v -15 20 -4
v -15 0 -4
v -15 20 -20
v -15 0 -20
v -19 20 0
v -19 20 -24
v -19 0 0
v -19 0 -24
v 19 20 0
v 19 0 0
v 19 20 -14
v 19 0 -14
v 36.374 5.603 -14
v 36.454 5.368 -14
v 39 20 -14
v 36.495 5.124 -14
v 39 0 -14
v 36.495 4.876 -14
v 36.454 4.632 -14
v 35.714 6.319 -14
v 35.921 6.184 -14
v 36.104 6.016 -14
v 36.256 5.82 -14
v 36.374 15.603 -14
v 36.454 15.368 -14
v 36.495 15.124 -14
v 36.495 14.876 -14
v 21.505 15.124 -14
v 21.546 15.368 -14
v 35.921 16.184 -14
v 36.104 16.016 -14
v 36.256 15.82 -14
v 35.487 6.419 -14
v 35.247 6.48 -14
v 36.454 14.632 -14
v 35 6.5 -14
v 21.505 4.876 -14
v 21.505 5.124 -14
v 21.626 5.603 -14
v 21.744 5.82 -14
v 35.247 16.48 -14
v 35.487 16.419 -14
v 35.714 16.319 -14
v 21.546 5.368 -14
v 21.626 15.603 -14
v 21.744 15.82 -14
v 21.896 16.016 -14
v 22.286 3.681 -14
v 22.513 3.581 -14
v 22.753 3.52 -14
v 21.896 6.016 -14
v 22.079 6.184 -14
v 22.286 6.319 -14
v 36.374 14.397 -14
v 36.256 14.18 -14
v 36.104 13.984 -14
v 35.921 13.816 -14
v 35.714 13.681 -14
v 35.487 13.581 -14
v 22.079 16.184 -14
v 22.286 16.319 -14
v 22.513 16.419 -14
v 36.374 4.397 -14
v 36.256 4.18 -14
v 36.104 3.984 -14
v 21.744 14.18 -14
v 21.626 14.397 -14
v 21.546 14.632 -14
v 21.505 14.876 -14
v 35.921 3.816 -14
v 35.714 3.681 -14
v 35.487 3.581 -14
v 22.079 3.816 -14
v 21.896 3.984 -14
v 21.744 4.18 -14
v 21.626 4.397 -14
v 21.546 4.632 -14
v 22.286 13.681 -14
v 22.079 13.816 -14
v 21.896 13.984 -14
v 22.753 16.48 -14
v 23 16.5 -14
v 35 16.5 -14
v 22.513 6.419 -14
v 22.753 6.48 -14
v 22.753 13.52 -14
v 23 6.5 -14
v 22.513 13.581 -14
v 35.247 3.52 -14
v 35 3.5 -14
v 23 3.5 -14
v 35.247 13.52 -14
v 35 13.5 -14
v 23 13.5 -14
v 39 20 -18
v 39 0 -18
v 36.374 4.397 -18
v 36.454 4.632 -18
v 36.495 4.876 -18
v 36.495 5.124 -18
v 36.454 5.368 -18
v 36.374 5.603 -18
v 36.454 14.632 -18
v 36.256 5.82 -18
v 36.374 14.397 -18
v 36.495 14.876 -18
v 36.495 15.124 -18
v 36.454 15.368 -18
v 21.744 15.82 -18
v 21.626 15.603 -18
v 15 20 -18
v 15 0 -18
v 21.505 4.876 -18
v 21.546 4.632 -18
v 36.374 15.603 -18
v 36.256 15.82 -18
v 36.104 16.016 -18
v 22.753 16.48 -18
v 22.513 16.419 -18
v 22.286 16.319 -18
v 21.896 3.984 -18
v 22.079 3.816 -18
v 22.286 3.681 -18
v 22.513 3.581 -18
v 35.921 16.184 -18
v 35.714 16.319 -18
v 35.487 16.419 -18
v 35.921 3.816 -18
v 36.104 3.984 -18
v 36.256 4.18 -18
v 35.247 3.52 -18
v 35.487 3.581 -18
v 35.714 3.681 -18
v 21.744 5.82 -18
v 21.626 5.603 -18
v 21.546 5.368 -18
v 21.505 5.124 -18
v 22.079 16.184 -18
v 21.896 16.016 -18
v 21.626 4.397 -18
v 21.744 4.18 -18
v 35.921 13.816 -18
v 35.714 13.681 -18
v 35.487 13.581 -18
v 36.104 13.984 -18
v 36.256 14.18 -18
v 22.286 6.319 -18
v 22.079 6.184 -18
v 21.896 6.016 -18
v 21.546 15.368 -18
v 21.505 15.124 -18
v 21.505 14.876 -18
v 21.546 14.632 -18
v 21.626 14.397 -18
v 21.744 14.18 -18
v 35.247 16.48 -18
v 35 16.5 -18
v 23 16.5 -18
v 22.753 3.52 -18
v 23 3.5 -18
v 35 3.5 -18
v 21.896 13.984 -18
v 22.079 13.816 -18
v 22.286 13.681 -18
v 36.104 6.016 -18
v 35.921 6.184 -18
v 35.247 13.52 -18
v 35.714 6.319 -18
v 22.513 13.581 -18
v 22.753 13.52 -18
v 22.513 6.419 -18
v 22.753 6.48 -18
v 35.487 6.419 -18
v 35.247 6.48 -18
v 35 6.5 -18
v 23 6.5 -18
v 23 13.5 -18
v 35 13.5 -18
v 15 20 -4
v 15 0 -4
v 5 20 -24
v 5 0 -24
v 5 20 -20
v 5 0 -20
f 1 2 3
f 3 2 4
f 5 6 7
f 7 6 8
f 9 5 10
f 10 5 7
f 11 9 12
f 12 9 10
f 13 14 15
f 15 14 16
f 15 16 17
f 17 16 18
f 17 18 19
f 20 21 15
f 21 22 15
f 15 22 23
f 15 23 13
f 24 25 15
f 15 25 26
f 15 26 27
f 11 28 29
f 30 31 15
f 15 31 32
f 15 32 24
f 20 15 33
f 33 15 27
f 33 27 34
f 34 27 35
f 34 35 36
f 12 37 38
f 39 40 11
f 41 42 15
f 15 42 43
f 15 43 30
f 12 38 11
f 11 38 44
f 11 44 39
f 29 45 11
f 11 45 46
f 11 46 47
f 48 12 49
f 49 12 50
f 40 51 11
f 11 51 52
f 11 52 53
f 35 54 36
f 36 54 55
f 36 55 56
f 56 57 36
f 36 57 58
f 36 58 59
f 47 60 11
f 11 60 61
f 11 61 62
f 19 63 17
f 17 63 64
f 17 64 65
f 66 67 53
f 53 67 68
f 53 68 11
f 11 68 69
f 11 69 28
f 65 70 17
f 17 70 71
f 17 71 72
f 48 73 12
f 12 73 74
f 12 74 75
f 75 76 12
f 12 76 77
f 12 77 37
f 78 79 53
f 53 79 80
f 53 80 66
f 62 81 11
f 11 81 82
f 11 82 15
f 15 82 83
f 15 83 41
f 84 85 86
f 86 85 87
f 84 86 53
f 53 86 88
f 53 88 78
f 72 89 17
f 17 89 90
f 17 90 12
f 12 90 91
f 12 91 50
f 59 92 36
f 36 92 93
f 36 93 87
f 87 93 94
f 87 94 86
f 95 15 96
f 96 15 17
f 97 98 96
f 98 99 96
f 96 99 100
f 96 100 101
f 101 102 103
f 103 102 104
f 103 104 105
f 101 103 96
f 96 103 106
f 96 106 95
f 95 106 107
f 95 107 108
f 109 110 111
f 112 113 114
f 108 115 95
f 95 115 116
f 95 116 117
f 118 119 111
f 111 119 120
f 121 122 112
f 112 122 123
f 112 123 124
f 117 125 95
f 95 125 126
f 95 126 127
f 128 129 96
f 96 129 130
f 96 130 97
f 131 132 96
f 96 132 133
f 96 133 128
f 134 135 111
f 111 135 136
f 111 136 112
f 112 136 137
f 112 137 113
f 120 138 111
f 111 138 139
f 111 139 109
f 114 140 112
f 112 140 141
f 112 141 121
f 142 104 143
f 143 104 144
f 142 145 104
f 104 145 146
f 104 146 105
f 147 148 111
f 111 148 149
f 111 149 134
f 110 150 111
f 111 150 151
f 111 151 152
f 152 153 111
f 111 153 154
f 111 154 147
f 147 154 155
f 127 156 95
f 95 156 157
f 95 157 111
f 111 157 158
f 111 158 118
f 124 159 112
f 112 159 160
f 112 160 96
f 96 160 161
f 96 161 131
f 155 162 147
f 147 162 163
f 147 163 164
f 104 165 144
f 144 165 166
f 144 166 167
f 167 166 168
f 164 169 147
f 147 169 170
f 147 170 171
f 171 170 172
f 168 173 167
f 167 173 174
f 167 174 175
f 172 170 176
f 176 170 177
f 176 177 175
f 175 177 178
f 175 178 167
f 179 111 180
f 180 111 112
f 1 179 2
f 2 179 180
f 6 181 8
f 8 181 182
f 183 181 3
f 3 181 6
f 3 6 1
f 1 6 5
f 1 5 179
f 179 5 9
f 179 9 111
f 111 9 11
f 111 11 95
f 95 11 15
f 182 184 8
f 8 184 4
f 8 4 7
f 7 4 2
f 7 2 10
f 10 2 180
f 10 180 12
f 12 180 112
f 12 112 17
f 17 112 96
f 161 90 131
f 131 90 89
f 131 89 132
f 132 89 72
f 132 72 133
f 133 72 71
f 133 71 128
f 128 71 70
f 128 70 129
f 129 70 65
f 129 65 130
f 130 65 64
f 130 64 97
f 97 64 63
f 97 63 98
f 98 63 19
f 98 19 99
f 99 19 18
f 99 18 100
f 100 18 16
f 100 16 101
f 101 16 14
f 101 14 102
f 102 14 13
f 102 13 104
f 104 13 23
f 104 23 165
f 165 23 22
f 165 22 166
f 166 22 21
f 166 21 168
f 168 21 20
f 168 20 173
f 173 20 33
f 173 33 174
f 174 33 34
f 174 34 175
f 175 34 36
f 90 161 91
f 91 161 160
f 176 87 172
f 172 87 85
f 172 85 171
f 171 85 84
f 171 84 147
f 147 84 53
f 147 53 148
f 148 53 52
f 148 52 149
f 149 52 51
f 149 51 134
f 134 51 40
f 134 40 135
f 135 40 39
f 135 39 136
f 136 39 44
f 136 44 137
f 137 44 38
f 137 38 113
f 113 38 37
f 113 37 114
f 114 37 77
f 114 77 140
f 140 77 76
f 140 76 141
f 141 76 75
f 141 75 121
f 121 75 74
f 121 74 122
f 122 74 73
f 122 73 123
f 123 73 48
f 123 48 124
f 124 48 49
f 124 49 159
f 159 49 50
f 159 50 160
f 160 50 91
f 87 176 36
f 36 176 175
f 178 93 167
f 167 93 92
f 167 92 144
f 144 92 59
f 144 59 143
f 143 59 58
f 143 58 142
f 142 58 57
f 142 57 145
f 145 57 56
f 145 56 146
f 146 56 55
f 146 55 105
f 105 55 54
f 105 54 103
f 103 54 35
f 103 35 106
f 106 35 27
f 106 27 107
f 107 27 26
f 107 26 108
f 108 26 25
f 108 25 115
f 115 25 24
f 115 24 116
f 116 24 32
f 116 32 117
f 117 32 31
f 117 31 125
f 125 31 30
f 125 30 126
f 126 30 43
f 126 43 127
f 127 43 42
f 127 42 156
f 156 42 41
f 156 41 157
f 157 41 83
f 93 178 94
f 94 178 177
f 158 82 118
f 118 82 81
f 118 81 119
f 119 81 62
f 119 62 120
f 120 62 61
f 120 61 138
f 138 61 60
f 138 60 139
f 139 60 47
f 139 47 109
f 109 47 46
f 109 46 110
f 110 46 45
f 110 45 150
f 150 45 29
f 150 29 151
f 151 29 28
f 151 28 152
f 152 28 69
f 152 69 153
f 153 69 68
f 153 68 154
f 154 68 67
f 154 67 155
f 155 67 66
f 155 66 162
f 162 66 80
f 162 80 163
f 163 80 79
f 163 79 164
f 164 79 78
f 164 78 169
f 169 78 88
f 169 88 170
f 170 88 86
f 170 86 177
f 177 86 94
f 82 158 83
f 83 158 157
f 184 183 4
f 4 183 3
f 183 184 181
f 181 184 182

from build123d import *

# Parameters (mm, degrees)
SALIENTE_EXTRUIR1_DEPTH = 20
CORTAR_EXTRUIR1_DEPTH   = 20
CROQUIS3_W              = 4
CROQUIS3_H              = 20
SALIENTE_EXTRUIR2_DEPTH = 20


with BuildPart() as part:
    # Croquis1 → Saliente-Extruir1 (new body)
    with BuildSketch(Plane(origin=(0, 0, 0), x_dir=(1, 0, 0), z_dir=(0, 1, 0))):
        Polygon((-19, 24), (-15, 24), (-15, 4), (15, 4), (15, 18), (39, 18), (39, 14), (19, 14), (19, 0), (-19, 0), align=None)
    extrude(amount=SALIENTE_EXTRUIR1_DEPTH)

    # Croquis2 → Cortar-Extruir1 (cut)
    with BuildSketch(Plane.XY.offset(-14)):
        with BuildLine():
            Line((35, 16.5), (23, 16.5))
            ThreePointArc((23, 16.5), (21.5, 15), (23, 13.5))
            Line((23, 13.5), (35, 13.5))
            ThreePointArc((35, 13.5), (36.5, 15), (35, 16.5))
        make_face()
        with BuildLine():
            Line((35, 3.5), (23, 3.5))
            ThreePointArc((23, 3.5), (21.5, 5), (23, 6.5))
            Line((23, 6.5), (35, 6.5))
            ThreePointArc((35, 6.5), (36.5, 5), (35, 3.5))
        make_face()
    extrude(amount=-CORTAR_EXTRUIR1_DEPTH, mode=Mode.SUBTRACT)

    # Croquis3 → Saliente-Extruir2 (add)
    with BuildSketch(Plane(origin=(-15, 0, 0), x_dir=(0, 0, -1), z_dir=(1, 0, 0))):
        with Locations((22, 10)):
            Rectangle(CROQUIS3_W, CROQUIS3_H)
    extrude(amount=SALIENTE_EXTRUIR2_DEPTH)


solid = part.part
